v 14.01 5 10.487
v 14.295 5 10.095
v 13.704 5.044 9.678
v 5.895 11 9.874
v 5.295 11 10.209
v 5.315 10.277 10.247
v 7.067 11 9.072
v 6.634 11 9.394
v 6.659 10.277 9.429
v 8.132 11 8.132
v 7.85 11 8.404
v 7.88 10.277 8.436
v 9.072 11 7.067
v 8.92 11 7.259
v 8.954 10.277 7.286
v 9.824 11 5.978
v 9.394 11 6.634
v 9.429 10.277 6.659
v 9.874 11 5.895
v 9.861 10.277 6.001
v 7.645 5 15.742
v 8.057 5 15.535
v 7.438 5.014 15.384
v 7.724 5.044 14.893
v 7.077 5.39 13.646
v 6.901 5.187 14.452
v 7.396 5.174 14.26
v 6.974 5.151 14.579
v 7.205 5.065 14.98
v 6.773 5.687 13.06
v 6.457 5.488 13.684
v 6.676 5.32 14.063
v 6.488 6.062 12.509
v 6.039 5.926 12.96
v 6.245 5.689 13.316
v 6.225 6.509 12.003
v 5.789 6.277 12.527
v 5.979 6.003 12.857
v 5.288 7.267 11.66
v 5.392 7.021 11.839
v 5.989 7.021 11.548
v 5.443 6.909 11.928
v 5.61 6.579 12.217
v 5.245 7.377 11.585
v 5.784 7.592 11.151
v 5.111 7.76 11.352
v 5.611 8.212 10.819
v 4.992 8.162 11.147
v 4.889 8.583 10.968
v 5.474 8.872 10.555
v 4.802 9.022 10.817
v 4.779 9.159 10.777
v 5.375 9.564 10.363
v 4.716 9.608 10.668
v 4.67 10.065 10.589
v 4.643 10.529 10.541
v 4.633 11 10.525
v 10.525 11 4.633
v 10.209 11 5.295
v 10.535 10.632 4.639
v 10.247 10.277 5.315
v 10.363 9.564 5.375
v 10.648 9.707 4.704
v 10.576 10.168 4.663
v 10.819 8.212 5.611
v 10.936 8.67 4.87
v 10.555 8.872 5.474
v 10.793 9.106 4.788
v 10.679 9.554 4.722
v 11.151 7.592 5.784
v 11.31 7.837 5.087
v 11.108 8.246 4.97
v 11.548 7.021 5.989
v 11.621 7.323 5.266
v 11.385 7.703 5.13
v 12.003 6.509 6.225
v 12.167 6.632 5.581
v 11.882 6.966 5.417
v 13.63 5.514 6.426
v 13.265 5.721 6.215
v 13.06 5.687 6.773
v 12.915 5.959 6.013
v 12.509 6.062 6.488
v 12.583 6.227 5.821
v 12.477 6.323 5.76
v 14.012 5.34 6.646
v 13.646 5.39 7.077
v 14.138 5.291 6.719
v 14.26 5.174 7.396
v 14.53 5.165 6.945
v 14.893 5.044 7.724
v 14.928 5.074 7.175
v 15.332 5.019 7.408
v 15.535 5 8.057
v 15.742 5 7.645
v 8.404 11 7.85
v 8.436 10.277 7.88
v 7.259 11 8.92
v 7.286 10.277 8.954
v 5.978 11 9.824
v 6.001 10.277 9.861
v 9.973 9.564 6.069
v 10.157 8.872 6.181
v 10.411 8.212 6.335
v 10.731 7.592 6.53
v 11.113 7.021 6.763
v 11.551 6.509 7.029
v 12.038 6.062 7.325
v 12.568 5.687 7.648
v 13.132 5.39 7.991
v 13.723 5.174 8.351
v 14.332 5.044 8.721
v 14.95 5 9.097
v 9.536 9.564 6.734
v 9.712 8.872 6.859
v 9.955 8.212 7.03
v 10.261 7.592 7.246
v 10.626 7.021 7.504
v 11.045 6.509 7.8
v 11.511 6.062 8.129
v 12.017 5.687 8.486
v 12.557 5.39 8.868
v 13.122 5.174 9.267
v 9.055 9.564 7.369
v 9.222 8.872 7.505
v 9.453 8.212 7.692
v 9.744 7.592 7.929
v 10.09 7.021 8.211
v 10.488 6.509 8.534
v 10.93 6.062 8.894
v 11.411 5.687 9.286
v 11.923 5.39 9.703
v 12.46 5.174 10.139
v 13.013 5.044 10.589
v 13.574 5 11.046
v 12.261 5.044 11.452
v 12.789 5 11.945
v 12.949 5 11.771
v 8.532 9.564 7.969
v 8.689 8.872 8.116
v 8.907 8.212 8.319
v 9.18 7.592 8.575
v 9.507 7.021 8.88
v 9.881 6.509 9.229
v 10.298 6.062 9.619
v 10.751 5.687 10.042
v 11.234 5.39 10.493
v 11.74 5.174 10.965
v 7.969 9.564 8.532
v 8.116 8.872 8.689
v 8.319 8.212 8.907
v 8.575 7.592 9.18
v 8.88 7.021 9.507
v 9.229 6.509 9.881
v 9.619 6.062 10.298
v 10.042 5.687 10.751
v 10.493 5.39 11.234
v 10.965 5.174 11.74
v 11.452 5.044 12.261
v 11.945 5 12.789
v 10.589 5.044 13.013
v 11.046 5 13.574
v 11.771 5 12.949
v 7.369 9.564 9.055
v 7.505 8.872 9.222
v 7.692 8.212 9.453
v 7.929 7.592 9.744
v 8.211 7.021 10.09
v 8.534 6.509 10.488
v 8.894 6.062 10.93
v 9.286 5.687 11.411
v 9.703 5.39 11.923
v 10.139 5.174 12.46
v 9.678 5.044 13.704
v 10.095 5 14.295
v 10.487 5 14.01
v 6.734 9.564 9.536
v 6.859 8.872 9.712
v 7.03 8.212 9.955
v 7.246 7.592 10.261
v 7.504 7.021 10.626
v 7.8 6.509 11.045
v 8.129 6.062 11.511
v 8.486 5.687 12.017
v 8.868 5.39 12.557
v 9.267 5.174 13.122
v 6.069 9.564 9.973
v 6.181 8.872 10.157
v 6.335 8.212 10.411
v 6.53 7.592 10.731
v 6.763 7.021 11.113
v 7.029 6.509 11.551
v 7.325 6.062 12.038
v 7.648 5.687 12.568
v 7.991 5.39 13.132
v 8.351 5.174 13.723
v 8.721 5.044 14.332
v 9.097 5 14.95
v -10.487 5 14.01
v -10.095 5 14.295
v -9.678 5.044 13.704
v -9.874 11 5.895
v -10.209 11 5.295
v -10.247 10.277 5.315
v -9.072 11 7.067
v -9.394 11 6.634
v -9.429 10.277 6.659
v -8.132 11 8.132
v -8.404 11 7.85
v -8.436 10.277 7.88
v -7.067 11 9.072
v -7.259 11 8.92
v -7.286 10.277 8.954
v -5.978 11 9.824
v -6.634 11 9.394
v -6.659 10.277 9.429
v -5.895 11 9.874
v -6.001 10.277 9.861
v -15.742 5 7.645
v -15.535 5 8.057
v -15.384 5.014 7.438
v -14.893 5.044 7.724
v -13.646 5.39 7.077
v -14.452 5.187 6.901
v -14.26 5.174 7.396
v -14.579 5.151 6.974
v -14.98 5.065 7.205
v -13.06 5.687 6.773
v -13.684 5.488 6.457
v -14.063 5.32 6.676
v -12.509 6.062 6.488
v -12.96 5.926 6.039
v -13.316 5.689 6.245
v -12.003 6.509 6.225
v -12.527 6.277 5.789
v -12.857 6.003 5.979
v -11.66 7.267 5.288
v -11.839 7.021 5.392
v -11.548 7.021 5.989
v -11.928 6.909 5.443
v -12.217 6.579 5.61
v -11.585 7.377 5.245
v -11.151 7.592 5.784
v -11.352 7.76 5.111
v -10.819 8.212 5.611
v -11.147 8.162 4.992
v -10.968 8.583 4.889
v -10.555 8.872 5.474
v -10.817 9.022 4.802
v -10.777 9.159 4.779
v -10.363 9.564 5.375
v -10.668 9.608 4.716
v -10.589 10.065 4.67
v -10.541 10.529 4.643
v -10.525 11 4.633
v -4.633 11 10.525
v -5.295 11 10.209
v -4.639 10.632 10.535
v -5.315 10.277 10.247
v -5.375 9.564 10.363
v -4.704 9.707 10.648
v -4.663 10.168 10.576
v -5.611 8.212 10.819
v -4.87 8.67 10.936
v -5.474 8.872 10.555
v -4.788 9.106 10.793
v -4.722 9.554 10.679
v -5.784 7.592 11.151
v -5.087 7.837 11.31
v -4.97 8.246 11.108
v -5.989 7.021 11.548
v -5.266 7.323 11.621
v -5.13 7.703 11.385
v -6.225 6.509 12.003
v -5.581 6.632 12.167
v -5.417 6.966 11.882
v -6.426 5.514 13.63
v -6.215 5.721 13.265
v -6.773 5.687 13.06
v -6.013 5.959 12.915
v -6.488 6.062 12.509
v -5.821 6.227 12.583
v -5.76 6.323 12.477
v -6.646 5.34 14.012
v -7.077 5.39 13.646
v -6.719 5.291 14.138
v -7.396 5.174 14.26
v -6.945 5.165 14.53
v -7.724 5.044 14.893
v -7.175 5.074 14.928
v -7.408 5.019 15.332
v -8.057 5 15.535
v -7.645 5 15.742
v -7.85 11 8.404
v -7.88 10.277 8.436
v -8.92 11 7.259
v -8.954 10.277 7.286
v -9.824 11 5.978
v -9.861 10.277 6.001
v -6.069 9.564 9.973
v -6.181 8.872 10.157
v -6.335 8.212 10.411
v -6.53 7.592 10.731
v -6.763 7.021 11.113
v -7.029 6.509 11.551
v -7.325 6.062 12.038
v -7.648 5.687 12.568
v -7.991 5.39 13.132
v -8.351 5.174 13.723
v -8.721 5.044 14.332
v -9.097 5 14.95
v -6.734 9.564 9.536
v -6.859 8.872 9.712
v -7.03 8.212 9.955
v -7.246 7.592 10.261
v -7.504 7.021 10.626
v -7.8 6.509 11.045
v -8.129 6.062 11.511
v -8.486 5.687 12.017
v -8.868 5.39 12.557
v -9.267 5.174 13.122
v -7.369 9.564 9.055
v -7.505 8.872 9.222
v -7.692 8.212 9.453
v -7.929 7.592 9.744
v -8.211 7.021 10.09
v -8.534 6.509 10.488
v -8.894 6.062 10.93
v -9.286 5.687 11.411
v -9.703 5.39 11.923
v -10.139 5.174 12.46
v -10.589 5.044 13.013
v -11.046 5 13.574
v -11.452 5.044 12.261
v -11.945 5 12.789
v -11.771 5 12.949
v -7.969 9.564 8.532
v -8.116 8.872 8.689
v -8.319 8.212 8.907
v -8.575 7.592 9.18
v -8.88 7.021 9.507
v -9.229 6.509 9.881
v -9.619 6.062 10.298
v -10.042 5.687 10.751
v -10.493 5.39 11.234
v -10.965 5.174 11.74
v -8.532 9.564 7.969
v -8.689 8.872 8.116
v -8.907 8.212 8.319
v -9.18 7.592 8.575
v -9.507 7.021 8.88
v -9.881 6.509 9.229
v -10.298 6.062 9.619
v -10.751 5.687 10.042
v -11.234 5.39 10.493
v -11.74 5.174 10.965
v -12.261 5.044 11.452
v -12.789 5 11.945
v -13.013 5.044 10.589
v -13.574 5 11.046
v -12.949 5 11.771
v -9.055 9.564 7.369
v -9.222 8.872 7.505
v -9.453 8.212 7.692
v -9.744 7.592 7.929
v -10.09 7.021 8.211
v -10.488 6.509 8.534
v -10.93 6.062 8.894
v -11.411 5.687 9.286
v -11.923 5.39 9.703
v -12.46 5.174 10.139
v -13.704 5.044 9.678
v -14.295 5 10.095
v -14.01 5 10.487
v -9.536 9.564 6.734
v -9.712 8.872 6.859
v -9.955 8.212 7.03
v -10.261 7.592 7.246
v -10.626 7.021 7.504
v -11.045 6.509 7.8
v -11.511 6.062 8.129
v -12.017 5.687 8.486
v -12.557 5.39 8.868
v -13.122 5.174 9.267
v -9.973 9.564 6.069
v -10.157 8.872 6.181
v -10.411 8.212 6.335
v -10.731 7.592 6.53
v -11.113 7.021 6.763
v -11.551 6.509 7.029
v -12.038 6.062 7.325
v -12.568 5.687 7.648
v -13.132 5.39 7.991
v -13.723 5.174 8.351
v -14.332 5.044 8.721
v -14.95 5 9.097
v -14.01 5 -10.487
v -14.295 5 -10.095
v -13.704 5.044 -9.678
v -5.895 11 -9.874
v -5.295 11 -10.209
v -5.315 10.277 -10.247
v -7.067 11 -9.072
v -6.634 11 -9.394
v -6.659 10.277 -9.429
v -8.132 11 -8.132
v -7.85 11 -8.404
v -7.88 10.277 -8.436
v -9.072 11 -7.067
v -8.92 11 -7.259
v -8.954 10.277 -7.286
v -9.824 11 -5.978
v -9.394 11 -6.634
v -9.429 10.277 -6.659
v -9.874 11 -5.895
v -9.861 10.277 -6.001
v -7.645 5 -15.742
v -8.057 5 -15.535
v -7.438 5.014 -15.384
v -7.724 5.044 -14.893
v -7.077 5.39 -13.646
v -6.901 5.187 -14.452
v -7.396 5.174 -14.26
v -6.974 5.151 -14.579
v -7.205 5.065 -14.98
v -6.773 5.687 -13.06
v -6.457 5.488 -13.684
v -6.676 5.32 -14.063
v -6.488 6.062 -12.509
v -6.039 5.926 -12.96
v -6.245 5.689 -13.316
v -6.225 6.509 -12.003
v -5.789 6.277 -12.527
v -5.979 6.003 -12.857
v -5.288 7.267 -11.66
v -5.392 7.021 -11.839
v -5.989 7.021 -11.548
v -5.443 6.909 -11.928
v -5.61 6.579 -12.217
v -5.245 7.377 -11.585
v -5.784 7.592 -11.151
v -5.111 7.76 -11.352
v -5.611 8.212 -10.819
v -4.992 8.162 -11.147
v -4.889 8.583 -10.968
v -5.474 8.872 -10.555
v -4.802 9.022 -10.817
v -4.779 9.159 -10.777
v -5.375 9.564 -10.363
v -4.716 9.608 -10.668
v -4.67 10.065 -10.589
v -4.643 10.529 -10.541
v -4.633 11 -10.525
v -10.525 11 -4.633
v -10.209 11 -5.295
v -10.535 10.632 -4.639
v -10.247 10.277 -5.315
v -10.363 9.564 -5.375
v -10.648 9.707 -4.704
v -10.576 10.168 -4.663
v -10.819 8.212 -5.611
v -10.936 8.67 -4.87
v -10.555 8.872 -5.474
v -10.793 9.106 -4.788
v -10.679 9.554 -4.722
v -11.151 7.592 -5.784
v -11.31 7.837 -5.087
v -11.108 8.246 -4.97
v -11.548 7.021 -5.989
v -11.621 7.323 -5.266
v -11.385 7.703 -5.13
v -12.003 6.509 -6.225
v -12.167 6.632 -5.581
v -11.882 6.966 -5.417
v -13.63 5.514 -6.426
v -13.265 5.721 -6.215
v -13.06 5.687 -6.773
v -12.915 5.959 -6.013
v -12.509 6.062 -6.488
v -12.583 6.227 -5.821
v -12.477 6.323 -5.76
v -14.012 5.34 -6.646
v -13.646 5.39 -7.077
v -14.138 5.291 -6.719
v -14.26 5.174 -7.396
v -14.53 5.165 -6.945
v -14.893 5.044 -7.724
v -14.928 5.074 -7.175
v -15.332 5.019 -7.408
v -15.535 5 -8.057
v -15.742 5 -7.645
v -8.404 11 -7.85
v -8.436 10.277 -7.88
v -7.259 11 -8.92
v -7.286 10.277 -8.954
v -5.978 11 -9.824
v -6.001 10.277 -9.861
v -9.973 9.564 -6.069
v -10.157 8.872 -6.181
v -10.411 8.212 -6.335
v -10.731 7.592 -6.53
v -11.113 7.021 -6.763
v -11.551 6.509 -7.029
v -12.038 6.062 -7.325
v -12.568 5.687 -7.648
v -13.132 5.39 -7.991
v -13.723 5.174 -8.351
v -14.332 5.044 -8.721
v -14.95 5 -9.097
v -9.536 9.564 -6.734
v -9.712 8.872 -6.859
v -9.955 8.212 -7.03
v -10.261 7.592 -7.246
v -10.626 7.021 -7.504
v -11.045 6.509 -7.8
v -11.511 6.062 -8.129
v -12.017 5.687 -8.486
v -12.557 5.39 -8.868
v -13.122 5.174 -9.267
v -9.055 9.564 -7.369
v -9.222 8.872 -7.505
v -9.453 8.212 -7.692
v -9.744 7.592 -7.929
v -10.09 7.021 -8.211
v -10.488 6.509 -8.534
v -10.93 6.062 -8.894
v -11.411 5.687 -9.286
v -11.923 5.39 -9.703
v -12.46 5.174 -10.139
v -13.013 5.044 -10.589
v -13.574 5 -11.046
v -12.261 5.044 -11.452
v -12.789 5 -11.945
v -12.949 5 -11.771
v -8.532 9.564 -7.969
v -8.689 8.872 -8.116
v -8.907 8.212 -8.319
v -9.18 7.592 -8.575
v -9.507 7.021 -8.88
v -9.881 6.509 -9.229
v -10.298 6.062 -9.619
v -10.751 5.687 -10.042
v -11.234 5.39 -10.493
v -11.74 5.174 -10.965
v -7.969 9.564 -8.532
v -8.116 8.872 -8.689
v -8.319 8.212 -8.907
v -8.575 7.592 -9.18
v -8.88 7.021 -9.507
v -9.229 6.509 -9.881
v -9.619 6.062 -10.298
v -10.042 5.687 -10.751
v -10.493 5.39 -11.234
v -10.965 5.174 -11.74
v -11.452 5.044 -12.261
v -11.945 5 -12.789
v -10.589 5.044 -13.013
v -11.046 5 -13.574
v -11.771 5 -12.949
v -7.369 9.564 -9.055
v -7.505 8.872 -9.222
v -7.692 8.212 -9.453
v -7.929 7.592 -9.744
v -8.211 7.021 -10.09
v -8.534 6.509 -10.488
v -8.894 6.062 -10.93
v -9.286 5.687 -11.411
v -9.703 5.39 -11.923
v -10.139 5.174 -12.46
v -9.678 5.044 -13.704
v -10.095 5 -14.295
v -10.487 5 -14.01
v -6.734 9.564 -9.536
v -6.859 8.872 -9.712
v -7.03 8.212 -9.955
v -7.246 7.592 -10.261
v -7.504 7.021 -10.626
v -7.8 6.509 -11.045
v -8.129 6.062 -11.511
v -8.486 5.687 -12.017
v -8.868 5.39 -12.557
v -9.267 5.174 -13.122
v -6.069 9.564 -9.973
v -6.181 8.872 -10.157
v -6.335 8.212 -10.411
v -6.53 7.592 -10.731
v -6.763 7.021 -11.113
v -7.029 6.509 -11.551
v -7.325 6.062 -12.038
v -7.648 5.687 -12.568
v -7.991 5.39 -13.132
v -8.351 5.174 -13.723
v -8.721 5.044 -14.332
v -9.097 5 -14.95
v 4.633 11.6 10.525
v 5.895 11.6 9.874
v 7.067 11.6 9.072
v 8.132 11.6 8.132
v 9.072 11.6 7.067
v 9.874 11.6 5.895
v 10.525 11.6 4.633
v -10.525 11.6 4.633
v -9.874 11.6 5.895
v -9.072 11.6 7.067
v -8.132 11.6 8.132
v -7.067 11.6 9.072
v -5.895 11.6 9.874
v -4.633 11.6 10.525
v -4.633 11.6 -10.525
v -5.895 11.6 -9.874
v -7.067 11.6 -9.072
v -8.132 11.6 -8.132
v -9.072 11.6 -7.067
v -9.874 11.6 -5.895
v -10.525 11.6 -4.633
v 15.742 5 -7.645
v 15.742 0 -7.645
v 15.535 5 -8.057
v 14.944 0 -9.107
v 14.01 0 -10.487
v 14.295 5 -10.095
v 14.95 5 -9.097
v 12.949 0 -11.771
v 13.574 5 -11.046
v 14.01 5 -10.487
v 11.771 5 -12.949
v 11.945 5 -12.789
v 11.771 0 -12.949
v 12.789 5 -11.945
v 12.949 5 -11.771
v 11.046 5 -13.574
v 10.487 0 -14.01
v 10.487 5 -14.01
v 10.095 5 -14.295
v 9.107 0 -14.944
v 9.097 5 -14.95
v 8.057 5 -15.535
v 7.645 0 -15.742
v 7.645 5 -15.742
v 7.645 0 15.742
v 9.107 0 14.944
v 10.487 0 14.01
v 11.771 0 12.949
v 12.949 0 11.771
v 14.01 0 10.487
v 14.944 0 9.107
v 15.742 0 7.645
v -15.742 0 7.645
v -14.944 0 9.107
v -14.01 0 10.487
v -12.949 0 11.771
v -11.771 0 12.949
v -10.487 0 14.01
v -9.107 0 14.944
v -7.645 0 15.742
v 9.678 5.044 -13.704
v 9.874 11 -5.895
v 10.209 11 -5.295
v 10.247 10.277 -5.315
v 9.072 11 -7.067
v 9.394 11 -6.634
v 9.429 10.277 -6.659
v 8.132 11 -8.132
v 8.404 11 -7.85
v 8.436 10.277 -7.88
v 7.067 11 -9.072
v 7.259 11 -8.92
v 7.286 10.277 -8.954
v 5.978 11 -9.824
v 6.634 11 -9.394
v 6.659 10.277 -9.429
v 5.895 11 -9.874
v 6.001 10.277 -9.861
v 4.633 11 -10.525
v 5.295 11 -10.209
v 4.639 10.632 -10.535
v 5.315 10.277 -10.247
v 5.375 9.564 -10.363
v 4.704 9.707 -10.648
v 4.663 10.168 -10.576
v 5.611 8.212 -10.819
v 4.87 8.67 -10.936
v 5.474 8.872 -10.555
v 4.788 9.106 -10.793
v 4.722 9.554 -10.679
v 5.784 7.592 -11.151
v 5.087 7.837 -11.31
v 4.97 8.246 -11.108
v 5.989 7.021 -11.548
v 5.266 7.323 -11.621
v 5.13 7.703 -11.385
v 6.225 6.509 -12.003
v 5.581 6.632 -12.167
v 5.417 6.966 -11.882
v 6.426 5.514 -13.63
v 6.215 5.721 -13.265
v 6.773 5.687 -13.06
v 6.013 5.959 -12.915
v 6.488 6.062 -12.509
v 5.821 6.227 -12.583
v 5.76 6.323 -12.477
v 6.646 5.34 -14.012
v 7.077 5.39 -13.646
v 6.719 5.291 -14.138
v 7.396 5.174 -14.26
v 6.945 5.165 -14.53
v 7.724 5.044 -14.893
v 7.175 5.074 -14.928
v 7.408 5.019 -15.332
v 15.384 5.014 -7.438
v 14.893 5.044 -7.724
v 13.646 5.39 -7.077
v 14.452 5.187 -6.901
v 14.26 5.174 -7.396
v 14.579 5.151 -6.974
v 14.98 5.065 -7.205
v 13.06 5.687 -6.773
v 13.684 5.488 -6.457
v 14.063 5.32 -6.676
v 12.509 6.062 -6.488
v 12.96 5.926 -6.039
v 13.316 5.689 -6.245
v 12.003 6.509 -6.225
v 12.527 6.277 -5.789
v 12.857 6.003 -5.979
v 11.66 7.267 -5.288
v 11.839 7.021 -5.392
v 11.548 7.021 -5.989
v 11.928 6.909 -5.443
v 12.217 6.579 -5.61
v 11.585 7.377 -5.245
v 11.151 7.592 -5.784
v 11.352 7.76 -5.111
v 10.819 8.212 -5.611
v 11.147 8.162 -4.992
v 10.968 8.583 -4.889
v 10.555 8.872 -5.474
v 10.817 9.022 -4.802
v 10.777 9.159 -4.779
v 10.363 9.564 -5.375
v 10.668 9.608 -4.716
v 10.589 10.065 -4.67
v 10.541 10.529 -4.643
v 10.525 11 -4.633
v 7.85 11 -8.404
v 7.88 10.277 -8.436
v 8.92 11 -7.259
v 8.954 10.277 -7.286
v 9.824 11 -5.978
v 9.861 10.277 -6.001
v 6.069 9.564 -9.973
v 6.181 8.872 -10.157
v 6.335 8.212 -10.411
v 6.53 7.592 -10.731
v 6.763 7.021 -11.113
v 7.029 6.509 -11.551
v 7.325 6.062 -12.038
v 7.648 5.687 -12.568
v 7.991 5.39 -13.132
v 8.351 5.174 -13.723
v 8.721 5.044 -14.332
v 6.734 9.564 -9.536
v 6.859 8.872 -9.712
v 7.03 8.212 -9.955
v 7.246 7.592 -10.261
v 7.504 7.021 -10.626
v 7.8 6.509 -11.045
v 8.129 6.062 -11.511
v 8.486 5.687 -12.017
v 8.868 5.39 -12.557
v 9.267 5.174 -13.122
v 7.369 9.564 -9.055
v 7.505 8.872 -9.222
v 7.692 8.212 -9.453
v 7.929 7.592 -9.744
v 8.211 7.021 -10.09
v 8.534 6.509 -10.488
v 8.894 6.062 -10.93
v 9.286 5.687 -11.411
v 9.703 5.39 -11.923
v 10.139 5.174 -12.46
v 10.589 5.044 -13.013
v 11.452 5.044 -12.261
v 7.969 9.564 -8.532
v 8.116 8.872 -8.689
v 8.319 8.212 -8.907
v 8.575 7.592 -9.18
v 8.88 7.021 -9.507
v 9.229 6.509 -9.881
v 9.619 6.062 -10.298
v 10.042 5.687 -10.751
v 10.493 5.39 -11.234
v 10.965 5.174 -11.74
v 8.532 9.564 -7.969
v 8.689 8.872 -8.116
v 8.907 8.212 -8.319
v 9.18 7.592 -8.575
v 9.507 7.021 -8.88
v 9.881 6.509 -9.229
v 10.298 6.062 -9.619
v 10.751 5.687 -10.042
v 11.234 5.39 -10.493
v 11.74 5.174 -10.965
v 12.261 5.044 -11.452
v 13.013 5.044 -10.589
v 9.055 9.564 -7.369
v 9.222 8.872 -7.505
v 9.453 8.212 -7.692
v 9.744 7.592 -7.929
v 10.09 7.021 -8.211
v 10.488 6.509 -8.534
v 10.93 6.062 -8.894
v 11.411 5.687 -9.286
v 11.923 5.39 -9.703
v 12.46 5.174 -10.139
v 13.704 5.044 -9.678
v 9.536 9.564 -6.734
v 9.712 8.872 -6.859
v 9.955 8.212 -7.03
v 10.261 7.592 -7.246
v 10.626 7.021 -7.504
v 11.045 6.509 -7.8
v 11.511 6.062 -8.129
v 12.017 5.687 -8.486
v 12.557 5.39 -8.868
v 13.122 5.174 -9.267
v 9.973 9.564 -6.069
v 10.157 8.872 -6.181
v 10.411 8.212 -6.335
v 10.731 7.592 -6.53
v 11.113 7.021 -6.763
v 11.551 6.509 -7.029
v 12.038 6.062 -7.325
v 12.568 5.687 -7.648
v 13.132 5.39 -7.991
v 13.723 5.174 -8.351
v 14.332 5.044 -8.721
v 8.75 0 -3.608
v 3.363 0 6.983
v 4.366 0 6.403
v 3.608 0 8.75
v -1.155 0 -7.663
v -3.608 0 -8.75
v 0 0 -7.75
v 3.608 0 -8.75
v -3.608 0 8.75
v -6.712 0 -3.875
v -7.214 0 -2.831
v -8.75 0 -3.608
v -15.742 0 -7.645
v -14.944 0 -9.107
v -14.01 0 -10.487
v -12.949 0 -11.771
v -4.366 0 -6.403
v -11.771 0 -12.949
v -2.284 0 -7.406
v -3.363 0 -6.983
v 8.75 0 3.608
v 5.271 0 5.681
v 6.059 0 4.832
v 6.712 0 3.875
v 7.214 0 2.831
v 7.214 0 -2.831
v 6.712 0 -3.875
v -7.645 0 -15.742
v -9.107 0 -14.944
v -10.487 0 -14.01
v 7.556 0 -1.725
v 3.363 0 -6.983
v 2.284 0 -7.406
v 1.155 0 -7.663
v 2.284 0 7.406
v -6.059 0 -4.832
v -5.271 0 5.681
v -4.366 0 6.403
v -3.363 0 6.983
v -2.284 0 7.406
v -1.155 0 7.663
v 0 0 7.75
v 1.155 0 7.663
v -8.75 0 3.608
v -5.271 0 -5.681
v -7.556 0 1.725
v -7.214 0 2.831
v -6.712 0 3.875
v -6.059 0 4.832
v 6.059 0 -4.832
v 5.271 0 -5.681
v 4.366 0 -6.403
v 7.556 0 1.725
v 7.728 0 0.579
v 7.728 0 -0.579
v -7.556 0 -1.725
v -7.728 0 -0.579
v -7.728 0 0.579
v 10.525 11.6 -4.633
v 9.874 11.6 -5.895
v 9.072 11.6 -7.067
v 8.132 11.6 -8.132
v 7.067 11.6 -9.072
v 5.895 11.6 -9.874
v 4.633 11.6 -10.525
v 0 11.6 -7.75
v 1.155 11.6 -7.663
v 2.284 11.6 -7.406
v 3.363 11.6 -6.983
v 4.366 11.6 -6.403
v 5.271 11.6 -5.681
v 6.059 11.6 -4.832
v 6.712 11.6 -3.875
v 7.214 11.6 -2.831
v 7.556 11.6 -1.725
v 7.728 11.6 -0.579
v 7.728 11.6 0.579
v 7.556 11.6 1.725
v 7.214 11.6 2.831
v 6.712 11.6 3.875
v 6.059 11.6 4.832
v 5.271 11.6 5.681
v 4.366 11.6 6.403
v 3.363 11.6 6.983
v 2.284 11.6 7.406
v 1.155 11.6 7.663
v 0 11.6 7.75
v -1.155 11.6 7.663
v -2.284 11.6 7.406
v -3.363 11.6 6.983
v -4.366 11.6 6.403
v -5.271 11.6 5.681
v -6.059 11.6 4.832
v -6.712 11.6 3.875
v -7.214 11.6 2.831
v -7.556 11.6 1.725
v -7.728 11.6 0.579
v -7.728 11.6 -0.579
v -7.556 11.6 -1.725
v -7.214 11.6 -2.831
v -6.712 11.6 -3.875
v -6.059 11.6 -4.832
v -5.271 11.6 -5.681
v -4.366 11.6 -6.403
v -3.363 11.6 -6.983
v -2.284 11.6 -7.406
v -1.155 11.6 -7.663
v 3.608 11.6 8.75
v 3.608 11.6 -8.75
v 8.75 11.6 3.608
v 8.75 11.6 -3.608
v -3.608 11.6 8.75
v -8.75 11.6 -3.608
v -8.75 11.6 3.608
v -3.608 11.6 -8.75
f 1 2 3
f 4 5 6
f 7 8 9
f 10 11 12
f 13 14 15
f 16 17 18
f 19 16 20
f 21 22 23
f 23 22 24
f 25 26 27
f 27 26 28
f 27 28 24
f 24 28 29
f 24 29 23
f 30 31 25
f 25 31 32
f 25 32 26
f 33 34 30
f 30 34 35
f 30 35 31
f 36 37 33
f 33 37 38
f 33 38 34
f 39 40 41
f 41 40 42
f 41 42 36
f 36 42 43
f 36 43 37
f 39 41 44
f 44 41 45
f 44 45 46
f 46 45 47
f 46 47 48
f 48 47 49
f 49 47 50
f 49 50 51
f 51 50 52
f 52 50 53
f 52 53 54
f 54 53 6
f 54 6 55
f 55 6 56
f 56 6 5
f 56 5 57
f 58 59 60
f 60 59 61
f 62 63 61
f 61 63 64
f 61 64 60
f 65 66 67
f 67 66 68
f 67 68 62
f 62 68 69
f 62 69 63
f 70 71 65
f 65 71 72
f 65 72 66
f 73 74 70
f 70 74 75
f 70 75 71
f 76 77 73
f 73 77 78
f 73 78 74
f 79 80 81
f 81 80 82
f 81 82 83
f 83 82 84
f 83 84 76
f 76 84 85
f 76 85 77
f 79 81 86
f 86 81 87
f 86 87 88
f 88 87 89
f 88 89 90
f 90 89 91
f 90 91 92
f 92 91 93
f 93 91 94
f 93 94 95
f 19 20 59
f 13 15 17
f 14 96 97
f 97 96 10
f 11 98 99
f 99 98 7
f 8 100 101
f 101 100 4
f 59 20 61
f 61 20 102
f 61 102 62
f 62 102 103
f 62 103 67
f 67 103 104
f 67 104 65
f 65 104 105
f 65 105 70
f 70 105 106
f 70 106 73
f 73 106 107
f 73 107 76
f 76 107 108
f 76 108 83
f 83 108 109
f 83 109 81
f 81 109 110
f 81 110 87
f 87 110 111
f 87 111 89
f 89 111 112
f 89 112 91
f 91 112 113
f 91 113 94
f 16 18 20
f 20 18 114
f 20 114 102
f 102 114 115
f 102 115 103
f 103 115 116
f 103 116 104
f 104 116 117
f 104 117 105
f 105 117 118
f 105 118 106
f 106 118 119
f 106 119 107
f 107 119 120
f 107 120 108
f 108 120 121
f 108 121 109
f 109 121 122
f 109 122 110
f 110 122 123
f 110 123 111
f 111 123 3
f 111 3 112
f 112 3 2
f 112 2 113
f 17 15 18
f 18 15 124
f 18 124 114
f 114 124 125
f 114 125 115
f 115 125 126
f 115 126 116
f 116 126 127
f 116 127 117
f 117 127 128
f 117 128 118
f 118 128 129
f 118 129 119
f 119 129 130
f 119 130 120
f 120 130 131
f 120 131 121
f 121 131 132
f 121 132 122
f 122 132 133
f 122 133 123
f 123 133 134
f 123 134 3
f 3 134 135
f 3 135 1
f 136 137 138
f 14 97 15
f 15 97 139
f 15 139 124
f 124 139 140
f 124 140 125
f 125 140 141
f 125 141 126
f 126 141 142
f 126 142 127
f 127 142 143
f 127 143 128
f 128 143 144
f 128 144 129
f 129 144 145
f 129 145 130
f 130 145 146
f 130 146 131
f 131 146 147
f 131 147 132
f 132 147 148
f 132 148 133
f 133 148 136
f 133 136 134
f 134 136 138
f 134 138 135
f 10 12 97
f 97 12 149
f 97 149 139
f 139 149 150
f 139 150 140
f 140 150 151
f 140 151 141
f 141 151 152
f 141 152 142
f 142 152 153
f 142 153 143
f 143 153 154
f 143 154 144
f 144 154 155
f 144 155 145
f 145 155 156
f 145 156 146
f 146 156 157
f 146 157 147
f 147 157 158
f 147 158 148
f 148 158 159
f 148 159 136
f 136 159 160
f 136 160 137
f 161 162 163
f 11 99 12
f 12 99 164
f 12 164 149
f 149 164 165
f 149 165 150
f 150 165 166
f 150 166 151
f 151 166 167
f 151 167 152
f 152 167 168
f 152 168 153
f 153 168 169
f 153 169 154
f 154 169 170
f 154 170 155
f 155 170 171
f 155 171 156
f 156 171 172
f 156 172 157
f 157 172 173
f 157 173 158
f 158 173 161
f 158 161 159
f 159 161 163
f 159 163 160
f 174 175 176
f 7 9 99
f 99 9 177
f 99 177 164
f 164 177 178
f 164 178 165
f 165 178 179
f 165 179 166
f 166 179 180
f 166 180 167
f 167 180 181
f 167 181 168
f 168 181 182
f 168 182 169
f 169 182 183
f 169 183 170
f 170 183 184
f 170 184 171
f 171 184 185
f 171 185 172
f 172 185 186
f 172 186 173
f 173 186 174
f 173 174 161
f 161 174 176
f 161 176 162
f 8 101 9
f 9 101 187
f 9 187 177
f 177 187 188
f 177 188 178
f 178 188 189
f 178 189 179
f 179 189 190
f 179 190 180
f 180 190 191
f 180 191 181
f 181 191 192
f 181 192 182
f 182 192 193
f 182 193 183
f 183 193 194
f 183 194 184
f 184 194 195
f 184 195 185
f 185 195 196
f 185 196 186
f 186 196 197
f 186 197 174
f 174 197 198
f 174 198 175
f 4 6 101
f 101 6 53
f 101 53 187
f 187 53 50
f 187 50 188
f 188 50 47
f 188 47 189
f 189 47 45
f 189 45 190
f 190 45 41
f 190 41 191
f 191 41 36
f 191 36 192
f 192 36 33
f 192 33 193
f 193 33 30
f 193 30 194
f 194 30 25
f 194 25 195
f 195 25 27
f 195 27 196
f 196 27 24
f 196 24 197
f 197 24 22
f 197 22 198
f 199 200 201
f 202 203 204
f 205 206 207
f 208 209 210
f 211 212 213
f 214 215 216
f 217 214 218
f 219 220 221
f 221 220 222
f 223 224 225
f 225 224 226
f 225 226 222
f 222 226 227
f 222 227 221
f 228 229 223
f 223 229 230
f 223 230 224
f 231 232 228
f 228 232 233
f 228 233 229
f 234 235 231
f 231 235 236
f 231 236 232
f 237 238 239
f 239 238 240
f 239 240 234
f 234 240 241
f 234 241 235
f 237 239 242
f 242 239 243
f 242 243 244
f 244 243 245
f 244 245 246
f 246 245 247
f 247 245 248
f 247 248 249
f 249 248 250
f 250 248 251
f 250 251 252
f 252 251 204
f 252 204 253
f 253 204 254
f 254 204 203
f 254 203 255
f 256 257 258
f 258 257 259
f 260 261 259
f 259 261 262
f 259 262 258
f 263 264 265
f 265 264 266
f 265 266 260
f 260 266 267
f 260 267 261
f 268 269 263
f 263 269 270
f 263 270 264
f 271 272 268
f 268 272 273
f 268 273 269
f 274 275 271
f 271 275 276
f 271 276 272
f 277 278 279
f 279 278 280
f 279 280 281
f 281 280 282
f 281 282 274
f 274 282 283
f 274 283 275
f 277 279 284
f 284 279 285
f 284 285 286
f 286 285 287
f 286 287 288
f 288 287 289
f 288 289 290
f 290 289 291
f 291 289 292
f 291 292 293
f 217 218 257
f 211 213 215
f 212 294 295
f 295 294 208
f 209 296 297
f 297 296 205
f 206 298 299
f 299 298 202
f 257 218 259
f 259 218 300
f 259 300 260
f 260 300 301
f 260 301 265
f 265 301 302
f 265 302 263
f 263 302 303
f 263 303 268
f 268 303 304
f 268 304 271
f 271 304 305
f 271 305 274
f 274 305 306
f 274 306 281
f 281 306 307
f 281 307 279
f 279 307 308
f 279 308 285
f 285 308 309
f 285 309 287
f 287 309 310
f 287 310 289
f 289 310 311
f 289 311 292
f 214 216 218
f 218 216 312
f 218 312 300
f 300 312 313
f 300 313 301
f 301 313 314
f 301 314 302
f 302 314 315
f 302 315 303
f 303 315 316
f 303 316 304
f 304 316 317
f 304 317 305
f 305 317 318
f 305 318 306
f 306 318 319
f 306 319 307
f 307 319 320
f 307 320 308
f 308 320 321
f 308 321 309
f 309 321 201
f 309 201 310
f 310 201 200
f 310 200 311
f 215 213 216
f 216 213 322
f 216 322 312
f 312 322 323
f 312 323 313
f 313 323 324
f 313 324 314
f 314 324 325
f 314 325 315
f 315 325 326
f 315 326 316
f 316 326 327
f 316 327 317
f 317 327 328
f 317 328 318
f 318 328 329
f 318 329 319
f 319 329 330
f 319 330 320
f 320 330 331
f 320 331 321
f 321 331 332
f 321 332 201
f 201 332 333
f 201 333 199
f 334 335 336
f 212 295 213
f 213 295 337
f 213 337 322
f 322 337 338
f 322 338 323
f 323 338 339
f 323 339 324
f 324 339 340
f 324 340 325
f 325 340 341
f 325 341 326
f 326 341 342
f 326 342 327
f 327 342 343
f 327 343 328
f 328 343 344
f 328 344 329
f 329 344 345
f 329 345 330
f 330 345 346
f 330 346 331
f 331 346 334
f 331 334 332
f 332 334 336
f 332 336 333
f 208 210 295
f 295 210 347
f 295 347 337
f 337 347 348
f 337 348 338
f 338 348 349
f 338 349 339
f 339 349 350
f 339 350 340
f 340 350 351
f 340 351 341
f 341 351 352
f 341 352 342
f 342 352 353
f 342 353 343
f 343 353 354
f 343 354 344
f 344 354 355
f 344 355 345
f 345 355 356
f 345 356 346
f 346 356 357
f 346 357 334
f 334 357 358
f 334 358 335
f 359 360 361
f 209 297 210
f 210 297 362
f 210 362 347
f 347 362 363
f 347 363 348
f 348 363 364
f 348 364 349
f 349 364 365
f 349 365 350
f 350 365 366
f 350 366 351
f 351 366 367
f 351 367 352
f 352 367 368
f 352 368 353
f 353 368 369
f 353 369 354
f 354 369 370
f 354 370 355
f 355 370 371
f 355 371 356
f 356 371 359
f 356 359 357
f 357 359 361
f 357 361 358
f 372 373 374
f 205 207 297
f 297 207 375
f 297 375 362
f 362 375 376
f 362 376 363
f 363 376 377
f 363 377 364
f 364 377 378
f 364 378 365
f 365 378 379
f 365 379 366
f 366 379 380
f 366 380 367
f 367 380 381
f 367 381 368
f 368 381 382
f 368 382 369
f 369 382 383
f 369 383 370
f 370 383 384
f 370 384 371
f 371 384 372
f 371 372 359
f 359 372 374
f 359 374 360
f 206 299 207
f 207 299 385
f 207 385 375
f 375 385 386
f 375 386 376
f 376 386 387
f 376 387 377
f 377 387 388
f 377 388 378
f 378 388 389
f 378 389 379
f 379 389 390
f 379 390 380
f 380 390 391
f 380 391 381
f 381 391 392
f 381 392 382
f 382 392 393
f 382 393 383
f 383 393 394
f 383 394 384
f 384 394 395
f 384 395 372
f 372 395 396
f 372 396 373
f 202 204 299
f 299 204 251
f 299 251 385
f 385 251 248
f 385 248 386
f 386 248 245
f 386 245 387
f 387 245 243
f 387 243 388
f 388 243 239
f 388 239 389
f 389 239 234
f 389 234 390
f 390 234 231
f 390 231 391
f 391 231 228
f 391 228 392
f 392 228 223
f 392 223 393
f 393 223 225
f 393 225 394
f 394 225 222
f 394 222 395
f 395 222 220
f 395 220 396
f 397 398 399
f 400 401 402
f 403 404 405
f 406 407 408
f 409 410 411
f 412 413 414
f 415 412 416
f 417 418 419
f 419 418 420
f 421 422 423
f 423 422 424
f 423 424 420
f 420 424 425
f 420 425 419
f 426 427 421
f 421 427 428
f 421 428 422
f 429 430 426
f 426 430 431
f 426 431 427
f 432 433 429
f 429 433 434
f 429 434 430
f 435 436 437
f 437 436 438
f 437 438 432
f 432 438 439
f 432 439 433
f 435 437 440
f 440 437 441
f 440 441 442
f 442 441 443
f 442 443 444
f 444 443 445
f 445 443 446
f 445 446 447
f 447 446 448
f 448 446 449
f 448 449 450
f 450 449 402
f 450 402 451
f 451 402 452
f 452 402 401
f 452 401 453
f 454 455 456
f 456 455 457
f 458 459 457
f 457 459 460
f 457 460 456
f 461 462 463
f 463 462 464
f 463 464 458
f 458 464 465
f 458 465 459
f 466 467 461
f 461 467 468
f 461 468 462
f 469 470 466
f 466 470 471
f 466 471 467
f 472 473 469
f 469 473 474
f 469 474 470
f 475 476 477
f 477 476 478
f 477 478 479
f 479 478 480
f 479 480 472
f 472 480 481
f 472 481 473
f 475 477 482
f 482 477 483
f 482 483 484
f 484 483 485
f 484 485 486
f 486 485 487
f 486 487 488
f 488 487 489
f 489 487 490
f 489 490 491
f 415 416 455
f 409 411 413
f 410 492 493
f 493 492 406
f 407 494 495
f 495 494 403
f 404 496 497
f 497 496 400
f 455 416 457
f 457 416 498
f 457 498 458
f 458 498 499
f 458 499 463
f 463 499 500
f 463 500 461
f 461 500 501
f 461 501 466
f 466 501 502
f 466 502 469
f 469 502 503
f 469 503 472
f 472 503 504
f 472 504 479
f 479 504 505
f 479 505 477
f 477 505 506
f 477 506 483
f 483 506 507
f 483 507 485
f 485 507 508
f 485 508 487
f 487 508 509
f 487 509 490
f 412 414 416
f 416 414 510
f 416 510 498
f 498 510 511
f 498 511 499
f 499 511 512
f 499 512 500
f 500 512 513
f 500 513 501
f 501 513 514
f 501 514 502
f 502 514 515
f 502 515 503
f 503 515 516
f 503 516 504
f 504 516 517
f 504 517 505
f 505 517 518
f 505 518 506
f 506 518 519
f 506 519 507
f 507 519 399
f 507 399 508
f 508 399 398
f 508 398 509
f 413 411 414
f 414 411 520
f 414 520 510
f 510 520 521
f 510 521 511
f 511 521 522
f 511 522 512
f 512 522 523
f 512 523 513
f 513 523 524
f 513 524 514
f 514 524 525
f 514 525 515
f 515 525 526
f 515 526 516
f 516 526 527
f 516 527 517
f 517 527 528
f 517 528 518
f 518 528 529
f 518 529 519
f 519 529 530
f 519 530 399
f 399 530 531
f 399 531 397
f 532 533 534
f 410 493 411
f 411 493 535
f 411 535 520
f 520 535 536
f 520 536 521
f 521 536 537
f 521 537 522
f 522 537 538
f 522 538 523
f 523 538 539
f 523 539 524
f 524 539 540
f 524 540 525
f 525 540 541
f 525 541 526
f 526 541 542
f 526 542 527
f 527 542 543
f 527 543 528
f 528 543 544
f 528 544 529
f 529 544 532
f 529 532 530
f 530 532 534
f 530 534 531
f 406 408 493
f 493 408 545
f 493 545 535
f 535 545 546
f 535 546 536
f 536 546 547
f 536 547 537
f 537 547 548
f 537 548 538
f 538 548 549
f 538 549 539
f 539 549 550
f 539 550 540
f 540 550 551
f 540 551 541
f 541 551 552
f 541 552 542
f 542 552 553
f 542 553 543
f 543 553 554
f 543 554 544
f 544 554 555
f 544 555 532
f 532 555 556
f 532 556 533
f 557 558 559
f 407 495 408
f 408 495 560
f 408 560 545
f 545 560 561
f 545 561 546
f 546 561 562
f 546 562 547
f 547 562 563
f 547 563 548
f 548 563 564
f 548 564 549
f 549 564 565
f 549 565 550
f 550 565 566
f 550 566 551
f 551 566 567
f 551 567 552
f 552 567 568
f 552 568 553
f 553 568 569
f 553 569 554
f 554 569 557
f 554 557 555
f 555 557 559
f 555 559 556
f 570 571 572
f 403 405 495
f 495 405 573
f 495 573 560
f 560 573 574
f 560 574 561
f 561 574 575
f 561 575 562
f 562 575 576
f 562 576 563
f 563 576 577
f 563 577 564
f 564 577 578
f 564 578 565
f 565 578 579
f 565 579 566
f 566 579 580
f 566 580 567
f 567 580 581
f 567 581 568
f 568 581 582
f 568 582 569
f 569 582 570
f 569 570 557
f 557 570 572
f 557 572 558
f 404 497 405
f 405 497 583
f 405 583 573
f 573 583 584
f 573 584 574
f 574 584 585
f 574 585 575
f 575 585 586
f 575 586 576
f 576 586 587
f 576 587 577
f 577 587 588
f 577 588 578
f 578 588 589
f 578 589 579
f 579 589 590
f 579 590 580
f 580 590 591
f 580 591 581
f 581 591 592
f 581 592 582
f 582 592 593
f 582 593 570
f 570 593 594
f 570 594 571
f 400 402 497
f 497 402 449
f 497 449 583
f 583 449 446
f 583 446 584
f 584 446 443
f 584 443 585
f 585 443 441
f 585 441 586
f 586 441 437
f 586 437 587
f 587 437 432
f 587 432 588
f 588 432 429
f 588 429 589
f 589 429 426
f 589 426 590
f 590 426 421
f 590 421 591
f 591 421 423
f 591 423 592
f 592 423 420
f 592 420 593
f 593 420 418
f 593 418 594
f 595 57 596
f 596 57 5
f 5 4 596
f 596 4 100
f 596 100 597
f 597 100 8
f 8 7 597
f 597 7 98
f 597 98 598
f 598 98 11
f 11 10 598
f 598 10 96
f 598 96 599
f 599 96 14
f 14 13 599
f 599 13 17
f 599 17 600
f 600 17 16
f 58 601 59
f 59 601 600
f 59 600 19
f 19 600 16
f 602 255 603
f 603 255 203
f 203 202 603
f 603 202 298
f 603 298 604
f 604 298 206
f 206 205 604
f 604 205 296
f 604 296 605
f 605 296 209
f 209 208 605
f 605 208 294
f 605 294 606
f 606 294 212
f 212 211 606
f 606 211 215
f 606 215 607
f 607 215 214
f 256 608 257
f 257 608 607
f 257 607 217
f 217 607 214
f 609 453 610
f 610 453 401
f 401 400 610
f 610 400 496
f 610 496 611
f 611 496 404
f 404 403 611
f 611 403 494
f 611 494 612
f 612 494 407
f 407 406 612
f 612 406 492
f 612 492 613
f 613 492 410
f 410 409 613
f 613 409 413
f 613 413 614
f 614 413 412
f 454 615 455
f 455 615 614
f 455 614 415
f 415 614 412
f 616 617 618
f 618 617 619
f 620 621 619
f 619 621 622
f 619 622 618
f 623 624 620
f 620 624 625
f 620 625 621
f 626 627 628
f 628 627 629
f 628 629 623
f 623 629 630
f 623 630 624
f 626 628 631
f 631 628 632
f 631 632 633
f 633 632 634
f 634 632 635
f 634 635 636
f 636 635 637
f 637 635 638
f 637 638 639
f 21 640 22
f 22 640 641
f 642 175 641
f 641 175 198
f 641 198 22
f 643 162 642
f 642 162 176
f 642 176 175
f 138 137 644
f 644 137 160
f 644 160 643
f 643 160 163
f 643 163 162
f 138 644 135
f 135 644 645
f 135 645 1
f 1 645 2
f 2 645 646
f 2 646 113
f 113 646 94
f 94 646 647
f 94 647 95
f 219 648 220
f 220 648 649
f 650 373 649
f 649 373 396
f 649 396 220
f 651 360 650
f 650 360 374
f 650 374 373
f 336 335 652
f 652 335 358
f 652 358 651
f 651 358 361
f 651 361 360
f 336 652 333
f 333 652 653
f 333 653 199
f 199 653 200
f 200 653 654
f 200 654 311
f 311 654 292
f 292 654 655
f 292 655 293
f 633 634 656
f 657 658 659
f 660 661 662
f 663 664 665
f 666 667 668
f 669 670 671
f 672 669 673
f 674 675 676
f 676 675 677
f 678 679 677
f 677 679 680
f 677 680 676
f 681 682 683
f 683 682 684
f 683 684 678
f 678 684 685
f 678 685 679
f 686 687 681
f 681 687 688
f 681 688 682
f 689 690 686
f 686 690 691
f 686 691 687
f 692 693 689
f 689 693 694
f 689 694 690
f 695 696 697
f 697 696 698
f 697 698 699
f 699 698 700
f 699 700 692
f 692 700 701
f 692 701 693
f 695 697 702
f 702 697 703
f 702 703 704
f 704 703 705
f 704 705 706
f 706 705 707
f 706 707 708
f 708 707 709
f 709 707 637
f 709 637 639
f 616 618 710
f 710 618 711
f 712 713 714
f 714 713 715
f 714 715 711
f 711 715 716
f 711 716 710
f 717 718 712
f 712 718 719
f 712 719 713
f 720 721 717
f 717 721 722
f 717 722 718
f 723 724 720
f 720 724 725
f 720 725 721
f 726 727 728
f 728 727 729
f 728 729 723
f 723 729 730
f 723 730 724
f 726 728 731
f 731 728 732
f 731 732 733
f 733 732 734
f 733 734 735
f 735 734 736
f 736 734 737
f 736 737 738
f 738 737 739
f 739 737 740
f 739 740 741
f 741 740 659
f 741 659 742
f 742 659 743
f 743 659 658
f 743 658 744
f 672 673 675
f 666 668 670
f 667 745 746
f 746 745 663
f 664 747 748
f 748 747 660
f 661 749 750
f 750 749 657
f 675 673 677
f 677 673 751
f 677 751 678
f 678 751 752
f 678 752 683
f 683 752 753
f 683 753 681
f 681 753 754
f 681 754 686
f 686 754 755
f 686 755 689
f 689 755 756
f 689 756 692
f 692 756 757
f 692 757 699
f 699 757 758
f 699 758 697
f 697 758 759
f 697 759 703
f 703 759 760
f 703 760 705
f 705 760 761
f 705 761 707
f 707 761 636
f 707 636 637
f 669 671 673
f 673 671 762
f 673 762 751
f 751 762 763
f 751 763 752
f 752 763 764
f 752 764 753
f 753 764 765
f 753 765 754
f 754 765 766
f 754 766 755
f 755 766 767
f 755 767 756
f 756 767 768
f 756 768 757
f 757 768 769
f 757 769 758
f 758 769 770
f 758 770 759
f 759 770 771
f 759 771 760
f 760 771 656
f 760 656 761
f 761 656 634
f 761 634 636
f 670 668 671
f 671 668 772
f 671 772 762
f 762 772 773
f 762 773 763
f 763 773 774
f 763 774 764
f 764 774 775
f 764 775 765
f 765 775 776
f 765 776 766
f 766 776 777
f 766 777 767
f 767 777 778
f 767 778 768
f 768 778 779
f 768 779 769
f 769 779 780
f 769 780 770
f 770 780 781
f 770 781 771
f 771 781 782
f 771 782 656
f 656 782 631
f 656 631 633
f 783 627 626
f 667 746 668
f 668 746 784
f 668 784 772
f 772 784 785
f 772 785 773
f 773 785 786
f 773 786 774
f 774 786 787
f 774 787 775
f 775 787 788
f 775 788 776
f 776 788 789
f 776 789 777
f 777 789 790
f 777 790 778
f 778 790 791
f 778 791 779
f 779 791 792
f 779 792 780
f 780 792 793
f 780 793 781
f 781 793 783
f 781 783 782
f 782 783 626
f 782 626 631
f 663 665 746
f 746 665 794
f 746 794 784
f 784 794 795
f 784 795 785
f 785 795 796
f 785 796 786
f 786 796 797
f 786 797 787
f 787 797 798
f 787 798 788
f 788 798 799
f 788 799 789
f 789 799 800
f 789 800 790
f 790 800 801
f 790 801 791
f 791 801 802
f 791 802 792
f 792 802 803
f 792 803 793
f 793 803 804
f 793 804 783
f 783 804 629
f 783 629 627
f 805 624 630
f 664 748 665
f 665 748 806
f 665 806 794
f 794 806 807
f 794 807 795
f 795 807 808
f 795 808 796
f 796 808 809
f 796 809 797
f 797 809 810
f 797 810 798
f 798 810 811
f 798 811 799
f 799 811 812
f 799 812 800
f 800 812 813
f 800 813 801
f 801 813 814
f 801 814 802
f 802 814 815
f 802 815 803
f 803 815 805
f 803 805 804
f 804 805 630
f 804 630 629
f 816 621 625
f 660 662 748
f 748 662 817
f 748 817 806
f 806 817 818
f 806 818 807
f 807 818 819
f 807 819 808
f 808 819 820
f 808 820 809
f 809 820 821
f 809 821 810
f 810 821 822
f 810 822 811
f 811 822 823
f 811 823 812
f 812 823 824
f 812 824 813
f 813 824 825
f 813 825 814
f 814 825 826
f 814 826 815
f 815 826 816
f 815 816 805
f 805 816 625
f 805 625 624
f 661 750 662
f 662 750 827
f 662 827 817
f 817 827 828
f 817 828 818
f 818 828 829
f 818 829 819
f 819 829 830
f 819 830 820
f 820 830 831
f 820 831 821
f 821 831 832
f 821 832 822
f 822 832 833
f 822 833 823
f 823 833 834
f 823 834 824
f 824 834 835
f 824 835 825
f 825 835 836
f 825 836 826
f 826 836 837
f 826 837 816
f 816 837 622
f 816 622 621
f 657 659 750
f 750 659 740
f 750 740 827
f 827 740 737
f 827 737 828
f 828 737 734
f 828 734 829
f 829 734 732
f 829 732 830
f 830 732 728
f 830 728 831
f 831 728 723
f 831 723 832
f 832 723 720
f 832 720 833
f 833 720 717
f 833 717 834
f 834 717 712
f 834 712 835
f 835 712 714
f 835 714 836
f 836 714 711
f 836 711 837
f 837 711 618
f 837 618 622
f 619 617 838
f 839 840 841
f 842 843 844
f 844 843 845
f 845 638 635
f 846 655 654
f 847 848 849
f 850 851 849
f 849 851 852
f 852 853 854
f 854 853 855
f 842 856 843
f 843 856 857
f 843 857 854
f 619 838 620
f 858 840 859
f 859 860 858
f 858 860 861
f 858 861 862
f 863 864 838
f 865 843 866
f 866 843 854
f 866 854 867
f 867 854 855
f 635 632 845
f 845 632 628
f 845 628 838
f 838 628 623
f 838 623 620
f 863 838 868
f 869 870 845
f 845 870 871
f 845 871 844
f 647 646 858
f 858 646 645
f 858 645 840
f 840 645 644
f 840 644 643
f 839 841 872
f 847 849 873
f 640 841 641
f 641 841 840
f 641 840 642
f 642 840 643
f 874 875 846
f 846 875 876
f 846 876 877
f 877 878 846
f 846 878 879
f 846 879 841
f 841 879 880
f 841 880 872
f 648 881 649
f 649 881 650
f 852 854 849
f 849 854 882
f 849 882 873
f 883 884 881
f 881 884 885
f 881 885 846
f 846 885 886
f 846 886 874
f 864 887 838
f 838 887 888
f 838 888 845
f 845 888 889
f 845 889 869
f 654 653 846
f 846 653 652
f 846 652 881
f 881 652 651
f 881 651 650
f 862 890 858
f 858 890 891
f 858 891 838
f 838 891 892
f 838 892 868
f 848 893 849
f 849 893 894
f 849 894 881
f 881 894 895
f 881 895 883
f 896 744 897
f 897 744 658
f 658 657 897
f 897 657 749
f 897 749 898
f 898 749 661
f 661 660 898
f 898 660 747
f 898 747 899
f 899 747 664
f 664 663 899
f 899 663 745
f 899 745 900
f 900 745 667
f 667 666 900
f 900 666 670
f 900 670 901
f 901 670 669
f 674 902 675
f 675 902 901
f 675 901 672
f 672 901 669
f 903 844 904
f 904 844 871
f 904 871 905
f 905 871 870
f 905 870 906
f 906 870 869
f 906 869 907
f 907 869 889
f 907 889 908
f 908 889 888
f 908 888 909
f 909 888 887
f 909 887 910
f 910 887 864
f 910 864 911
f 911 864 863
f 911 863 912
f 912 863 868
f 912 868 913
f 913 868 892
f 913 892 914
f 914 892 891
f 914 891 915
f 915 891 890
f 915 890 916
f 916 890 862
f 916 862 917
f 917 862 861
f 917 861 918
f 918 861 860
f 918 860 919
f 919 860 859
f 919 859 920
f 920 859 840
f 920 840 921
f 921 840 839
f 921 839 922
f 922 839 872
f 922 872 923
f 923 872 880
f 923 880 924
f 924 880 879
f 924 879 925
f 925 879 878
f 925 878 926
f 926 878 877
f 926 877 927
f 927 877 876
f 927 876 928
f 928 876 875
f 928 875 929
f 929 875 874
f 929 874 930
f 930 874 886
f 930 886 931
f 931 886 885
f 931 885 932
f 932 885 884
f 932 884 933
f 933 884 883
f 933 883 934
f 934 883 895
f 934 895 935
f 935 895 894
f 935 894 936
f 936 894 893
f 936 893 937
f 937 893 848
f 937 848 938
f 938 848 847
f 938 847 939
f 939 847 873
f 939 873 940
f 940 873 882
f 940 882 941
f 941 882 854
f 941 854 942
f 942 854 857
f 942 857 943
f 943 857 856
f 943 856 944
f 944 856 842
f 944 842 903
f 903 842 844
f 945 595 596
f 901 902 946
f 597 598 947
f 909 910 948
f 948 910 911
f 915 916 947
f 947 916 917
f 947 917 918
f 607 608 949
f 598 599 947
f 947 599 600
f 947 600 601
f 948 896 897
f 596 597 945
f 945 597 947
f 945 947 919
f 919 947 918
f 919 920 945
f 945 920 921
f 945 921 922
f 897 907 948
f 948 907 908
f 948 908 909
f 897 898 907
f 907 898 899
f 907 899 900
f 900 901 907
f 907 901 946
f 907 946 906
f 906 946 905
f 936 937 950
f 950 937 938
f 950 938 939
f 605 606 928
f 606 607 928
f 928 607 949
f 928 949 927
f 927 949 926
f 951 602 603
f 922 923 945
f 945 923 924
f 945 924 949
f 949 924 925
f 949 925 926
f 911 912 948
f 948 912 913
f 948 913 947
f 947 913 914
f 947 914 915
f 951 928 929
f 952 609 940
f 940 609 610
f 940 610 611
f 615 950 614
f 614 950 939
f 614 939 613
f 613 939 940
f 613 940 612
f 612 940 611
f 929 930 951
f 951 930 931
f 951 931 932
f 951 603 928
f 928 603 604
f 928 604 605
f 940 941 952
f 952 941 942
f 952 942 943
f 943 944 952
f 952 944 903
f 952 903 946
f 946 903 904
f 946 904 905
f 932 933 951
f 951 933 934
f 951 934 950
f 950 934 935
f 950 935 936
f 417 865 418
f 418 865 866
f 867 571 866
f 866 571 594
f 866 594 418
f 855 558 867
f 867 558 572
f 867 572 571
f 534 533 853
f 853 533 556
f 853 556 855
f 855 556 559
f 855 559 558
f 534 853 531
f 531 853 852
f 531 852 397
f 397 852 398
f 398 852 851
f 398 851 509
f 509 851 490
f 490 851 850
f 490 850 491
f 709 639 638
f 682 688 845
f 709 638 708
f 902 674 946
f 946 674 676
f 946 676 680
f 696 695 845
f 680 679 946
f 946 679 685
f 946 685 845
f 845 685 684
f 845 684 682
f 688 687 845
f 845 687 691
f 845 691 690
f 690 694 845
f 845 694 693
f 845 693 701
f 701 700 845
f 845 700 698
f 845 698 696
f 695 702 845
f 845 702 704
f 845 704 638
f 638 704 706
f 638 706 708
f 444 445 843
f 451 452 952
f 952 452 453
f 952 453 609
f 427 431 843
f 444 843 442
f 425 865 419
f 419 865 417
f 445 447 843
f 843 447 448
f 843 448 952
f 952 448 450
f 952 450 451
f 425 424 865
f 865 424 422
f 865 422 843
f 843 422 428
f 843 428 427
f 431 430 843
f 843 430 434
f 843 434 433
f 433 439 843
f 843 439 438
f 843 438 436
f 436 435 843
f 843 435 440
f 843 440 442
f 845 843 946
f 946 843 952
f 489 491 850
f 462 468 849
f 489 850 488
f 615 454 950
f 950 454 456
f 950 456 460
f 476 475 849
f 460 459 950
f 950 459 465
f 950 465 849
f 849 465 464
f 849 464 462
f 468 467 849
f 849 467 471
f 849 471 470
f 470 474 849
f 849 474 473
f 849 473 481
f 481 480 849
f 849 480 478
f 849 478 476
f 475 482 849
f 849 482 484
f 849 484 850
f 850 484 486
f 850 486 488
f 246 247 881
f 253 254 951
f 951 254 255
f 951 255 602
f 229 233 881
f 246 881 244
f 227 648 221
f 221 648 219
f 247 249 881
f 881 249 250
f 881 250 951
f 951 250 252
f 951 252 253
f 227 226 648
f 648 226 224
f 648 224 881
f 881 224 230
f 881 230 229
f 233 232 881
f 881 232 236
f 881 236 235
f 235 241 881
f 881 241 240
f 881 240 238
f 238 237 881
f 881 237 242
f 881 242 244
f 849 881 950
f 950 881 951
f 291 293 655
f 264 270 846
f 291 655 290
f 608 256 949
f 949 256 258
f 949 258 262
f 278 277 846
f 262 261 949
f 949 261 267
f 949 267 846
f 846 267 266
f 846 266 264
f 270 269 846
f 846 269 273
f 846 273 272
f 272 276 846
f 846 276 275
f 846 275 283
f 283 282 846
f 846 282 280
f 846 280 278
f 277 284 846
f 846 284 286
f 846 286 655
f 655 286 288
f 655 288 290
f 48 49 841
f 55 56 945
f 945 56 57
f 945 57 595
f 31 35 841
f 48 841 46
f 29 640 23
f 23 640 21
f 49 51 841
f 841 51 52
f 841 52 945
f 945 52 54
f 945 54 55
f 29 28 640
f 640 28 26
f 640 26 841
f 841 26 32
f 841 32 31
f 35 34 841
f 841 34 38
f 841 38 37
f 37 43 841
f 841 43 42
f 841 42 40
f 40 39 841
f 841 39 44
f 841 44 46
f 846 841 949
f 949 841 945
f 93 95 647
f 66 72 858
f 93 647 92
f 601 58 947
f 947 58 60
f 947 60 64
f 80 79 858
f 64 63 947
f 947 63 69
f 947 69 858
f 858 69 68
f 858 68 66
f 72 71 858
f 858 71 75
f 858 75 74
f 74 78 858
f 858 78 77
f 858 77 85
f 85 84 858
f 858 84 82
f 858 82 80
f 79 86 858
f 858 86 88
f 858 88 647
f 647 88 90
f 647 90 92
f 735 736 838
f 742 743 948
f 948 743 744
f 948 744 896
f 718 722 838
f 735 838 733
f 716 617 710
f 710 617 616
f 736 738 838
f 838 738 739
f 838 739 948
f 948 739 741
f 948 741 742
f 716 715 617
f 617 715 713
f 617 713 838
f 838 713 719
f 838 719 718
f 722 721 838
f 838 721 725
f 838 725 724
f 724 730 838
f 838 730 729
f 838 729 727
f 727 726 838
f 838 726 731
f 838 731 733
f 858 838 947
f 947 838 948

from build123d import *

# Parameters (mm, degrees)
SKETCH1_R           = 11.5
SKETCH1_R_2         = 7.75
BOSS_EXTRUDE1_DEPTH = 11.4
SKETCH2_R           = 11.5
SKETCH2_R_2         = 7.75
BOSS_EXTRUDE2_DEPTH = 0.2
SKETCH5_R           = 17.5
SKETCH5_R_2         = 7.75
BOSS_EXTRUDE3_DEPTH = 5
FILLET1_R           = 6
CUT_EXTRUDE2_DEPTH  = 28.332398358
CIRPATTERN1_COUNT   = 4


with BuildPart() as part:
    # Sketch1 → Boss-Extrude1 (new body)
    with BuildSketch(Plane(origin=(0, 0, 0), x_dir=(1, 0, 0), z_dir=(0, 1, 0))):
        with Locations(Location((0, 0, 0), (0, 0, 270))):
            Circle(SKETCH1_R)
        with Locations(Location((0, 0, 0), (0, 0, 270))):
            Circle(SKETCH1_R_2, mode=Mode.SUBTRACT)
    extrude(amount=BOSS_EXTRUDE1_DEPTH)

    # Sketch2 → Boss-Extrude2 (add)
    with BuildSketch(Plane(origin=(0, 11.4, 0), x_dir=(1, 0, 0), z_dir=(0, 1, 0))):
        with Locations(Location((0, 0, 0), (0, 0, 270))):
            Circle(SKETCH2_R)
        with Locations(Location((0, 0, 0), (0, 0, 270))):
            Circle(SKETCH2_R_2, mode=Mode.SUBTRACT)
    extrude(amount=BOSS_EXTRUDE2_DEPTH)

    # Sketch5 → Boss-Extrude3 (add)
    with BuildSketch(Plane(origin=(0, 0, 0), x_dir=(1, 0, 0), z_dir=(0, 1, 0))):
        with Locations(Location((0, 0, 0), (0, 0, 270))):
            Circle(SKETCH5_R)
        with Locations(Location((0, 0, 0), (0, 0, 270))):
            Circle(SKETCH5_R_2, mode=Mode.SUBTRACT)
    extrude(amount=BOSS_EXTRUDE3_DEPTH)

    # Fillet1
    fillet1_edges = [part.edges().sort_by_distance(p)[0] for p in [
        (0, 5, -11.5),
    ]]
    fillet(fillet1_edges, radius=FILLET1_R - 0.0001)  # a hair under: the kernel refuses the full size

    # Sketch6 → Cut-Extrude2 (cut, through all)
    with BuildSketch(Plane(origin=(0, 11.6, 0), x_dir=(1, 0, 0), z_dir=(0, 1, 0))):
        Polygon((3.608439182, 21.25), (-3.608439182, 21.25), (-7.645118273, 15.741733278), (-7.216878365, 15), (-3.608439182, 8.75), (3.608439182, 8.75), (7.216878365, 15), (7.645118273, 15.741733278), align=None)
    cut_extrude2 = extrude(amount=-CUT_EXTRUDE2_DEPTH, mode=Mode.SUBTRACT)

    # CirPattern1: Cut-Extrude2 ×4 about axis
    cirpattern1_axis = Axis((0, 0, 0), (0, 1, 0))
    for i in range(1, CIRPATTERN1_COUNT):
        add(cut_extrude2.rotate(cirpattern1_axis, i * 360 / CIRPATTERN1_COUNT), mode=Mode.SUBTRACT)


solid = part.part
